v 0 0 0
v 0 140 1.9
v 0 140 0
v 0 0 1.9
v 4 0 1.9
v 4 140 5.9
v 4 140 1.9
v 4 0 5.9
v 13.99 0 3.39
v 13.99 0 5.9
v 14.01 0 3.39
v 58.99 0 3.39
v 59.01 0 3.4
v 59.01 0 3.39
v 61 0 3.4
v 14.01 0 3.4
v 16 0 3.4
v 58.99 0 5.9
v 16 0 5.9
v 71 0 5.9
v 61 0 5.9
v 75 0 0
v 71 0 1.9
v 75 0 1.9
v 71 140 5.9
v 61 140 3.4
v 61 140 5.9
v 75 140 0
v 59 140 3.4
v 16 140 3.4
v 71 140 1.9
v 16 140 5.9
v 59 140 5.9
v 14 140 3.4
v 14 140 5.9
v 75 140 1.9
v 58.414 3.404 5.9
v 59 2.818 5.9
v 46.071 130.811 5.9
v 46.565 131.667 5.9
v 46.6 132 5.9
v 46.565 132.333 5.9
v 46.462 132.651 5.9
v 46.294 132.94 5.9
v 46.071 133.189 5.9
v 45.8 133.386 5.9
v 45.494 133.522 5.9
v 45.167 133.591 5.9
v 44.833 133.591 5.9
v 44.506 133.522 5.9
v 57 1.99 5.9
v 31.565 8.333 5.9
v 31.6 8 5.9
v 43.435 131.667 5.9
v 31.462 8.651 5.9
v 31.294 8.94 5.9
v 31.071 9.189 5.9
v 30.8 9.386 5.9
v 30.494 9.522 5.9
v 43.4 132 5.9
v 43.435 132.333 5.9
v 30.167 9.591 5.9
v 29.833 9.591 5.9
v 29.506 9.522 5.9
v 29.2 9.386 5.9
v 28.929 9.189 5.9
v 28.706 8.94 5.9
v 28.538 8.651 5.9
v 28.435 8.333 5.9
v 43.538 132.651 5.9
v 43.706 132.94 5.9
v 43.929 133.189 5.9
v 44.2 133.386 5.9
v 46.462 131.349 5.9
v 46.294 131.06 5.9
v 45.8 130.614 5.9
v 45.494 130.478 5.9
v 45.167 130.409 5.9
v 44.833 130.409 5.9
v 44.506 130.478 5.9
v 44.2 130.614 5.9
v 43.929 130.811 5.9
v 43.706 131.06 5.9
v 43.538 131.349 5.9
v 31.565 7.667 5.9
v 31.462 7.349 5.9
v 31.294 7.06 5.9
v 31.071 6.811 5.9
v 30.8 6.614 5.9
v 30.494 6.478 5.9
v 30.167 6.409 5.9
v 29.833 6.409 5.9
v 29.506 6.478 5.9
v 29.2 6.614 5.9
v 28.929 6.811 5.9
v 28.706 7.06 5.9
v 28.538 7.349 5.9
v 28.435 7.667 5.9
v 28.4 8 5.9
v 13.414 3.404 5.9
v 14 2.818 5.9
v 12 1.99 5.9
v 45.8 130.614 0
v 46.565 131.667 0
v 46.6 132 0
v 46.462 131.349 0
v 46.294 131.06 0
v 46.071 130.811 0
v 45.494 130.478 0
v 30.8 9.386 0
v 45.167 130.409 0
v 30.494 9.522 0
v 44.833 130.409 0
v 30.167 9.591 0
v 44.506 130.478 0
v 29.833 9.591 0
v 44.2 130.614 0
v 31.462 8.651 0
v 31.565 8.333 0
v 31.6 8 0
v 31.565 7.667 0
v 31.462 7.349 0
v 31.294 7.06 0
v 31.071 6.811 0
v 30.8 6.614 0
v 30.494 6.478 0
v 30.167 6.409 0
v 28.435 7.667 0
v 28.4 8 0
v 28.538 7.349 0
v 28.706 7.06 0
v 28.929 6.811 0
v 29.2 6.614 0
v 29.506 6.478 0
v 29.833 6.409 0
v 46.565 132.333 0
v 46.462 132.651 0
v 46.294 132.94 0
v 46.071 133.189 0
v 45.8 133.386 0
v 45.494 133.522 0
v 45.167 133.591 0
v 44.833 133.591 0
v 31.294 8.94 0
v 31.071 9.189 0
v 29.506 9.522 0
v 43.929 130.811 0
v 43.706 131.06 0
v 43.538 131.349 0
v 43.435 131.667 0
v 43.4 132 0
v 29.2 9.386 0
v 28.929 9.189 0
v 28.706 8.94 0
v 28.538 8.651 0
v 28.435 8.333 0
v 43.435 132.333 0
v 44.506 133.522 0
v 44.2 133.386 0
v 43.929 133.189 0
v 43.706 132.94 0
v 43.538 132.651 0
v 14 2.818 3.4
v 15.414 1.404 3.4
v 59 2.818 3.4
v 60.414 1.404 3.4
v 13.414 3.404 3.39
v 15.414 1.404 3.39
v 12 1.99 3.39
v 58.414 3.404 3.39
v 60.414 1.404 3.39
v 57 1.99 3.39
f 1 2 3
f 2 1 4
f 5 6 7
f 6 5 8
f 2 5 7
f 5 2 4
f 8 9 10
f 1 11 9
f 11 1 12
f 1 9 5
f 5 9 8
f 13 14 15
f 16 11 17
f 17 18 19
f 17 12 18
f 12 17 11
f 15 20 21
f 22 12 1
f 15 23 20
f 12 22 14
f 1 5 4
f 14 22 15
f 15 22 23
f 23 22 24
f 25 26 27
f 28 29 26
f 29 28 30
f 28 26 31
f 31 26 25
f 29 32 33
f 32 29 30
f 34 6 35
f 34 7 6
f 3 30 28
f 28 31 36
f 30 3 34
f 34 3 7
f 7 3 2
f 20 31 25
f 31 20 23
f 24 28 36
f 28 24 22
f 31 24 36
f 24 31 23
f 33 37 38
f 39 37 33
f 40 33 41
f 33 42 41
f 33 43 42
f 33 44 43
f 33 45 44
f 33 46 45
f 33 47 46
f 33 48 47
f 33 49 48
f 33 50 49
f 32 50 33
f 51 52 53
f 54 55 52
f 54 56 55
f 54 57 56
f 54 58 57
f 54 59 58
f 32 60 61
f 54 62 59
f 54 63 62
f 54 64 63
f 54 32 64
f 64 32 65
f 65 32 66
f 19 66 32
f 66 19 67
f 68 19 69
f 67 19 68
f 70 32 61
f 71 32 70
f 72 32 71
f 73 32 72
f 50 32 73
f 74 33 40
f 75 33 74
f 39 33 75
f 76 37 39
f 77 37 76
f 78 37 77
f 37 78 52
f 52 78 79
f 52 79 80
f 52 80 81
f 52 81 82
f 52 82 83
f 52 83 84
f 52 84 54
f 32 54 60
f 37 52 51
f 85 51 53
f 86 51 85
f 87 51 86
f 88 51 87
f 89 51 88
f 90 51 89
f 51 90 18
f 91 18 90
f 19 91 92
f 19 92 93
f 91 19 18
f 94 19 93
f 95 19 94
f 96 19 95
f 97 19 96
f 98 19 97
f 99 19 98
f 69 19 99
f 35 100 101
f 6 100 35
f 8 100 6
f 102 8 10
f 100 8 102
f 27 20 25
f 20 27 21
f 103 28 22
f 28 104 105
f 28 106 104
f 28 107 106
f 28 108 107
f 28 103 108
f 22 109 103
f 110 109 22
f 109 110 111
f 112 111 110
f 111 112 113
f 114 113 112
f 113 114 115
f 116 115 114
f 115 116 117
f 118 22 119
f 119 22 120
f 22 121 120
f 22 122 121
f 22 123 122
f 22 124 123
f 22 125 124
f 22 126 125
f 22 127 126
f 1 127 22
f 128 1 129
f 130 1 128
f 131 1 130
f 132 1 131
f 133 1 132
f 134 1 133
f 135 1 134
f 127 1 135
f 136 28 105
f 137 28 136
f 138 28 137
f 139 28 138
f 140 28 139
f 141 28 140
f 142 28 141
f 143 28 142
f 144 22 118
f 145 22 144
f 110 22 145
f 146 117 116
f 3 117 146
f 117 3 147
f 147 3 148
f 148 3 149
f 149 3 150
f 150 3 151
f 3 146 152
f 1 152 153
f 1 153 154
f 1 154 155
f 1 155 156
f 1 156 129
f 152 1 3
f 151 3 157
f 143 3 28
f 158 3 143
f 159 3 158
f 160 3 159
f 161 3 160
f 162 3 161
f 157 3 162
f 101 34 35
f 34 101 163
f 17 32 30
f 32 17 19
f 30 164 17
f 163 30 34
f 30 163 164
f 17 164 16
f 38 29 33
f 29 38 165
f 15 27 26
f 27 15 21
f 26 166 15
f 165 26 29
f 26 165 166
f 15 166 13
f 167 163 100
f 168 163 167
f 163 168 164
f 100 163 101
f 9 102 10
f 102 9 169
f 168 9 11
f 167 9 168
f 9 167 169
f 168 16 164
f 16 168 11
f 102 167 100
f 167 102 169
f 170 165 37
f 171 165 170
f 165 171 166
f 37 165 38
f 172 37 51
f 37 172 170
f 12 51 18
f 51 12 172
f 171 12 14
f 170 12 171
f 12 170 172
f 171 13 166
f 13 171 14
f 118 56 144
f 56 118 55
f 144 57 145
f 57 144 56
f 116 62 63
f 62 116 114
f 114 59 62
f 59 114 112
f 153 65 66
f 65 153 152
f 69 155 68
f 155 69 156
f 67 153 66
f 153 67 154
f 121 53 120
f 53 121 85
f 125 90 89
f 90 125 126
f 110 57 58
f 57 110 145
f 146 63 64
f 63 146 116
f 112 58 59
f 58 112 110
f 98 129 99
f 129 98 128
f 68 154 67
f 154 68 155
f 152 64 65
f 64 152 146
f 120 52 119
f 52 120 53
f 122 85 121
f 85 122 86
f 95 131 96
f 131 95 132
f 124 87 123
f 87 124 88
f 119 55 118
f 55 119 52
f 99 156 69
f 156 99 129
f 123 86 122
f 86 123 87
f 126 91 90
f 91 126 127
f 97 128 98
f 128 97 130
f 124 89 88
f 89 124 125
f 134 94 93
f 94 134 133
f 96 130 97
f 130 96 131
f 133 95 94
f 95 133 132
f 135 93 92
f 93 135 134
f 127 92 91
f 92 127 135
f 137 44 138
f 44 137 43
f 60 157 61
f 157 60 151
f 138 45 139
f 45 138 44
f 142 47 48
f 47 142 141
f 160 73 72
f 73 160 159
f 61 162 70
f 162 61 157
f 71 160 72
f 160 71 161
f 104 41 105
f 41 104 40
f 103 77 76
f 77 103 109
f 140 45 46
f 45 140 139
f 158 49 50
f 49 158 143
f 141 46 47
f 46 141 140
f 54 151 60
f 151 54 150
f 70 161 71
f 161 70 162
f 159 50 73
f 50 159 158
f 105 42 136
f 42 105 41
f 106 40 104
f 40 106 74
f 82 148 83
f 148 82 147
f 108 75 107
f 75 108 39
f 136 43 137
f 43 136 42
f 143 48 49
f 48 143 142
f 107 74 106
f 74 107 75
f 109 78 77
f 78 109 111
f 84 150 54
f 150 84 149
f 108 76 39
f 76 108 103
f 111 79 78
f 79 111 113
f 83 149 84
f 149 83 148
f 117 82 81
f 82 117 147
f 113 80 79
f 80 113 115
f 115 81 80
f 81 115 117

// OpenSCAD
// sliding_track_base.scad
// Sliding track base for the U-shaped pusher block.
// Units: mm

// ====== Base outline ======
base_w = 75;           // X width
base_l = 140;          // Y length
base_t = 5.9;          // Z thickness

// ====== U-pusher rail grooves ======
rail_w       = 2;      // Groove width, matching the 2 mm pusher walls
rail_d       = 2.5;    // Groove depth from the top surface
rail_chamfer = 2;      // Entry chamfer at Y=0

// Grooves are symmetric around base center X=37.5:
// left: X=[14,16], right: X=[59,61].
rail_cx_left  = 15;
rail_cx_right = 60;

// ====== Mounting holes ======
mount_hole_d  = 3.2;   // M3 clearance hole
mount_inset   = 8;
mount_x_left  = 30;
mount_x_right = 45;

// ====== Side blocker slots ======
side_slot_w = 4;
side_slot_d = 4;

eps = 0.01;

module rail_groove(cx) {
    translate([cx - rail_w/2, 0, base_t - rail_d])
        cube([rail_w, base_l, rail_d + eps]);
}

module rail_entry_chamfer(cx) {
    translate([cx - rail_w/2, -eps, base_t - rail_d - eps])
        rotate([0, 0, 45])
            cube([rail_w, rail_chamfer * sqrt(2), rail_d + 2*eps]);
}

module sliding_track_base() {
    difference() {
        cube([base_w, base_l, base_t]);

        rail_groove(rail_cx_left);
        rail_groove(rail_cx_right);

        rail_entry_chamfer(rail_cx_left);
        rail_entry_chamfer(rail_cx_right);

        translate([mount_x_left, mount_inset, -eps])
            cylinder(d=mount_hole_d, h=base_t + 2*eps, $fn=30);
        translate([mount_x_right, base_l - mount_inset, -eps])
            cylinder(d=mount_hole_d, h=base_t + 2*eps, $fn=30);

        for (xside = [0, base_w - side_slot_w]) {
            translate([xside, 0, base_t - side_slot_d])
                cube([side_slot_w, base_l, side_slot_d + eps]);
        }
    }
}

sliding_track_base();
